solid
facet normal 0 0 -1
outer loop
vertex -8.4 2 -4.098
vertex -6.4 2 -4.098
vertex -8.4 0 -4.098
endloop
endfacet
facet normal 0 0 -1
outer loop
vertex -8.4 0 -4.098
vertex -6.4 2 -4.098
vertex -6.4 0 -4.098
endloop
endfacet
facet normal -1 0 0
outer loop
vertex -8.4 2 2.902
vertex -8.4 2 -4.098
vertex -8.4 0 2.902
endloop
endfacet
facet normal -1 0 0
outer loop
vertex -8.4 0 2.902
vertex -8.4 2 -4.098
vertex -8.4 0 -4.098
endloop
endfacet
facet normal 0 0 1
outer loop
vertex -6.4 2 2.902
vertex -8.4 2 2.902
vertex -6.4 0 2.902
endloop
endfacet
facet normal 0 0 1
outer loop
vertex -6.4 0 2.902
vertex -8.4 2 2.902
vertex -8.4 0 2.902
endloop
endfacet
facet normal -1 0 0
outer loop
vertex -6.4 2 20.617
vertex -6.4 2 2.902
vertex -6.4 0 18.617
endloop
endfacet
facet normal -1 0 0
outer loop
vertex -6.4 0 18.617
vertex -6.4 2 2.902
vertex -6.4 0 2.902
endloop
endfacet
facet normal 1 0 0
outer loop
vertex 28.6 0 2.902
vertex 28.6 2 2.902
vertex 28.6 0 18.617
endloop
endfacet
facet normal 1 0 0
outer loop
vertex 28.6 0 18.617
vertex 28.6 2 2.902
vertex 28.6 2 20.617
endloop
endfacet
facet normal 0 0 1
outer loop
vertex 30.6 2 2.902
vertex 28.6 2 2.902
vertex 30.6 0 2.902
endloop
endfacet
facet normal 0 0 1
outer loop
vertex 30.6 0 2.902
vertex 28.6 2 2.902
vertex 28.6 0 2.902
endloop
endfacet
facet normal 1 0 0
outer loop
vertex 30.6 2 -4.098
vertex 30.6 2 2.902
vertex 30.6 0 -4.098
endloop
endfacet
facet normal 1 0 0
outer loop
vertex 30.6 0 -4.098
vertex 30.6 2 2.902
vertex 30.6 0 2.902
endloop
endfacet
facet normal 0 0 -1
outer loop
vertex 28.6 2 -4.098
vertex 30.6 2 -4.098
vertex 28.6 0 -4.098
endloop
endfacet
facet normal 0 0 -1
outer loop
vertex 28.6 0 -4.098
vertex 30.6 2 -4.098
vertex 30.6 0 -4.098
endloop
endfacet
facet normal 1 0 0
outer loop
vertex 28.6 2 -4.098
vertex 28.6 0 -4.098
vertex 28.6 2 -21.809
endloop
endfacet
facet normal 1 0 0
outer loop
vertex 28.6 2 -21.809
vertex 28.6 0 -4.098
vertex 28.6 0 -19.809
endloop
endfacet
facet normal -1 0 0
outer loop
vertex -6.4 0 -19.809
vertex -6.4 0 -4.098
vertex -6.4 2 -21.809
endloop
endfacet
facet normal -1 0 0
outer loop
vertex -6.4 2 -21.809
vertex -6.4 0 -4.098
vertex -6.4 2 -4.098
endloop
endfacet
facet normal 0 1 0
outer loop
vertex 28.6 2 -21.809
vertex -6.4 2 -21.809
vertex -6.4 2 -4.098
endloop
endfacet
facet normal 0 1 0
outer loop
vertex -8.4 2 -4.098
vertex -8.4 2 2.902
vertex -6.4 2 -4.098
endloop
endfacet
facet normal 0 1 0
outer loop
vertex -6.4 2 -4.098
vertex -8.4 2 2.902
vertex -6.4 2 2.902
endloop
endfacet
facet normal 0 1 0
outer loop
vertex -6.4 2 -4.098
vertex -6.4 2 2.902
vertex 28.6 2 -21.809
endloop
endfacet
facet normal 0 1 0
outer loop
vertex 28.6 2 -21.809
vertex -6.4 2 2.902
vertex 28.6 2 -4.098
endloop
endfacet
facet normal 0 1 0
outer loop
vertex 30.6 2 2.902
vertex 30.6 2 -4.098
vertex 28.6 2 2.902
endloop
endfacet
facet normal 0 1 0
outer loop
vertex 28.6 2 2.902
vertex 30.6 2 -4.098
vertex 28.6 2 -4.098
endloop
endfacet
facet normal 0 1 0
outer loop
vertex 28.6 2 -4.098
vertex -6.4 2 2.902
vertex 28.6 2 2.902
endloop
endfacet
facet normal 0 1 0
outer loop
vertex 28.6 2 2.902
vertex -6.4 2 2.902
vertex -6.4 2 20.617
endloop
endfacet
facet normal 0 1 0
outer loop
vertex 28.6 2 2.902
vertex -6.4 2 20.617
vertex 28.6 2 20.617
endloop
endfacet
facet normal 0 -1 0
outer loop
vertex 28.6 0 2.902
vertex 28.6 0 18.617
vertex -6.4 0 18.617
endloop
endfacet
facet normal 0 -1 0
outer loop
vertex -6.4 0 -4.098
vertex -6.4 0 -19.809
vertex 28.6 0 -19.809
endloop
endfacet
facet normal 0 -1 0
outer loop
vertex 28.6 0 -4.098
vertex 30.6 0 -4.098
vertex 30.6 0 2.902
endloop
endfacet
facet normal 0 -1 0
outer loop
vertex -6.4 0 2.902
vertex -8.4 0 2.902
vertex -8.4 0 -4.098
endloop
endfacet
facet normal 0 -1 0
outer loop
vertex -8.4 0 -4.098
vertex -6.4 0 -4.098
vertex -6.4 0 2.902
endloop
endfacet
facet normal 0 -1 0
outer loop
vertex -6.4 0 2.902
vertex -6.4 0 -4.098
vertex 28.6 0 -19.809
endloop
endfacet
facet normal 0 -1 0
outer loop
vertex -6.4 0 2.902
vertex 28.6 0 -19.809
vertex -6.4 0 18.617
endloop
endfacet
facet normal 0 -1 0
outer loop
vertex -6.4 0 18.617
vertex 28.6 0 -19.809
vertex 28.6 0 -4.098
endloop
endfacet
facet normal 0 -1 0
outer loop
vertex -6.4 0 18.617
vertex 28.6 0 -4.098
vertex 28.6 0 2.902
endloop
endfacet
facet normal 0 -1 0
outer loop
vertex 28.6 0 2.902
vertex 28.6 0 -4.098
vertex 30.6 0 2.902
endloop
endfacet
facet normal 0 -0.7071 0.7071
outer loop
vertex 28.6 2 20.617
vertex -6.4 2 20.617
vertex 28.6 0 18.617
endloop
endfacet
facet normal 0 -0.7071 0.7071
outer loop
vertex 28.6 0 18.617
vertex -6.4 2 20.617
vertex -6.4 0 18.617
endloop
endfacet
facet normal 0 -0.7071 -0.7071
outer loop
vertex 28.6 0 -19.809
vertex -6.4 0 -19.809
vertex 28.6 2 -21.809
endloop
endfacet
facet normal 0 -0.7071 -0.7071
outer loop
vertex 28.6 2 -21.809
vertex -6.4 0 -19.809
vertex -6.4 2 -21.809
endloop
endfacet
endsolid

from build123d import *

# Parameters (mm, degrees)
SKETCH1_W           = 2
SKETCH1_H           = 7
SKETCH1_W_2         = 35
SKETCH1_H_2         = 42.42640687
BOSS_EXTRUDE1_DEPTH = 2
CUT_EXTRUDE1_DEPTH  = 43.995801746


with BuildPart() as part:
    # Sketch1 → Boss-Extrude1 (new body)
    with BuildSketch(Plane(origin=(0, 0, 0), x_dir=(1, 0, 0), z_dir=(0, 1, 0))):
        with Locations((-7.400304625, 0.597741848)):
            Rectangle(SKETCH1_W, SKETCH1_H)
        with Locations((11.099695375, 0.595945283)):
            Rectangle(SKETCH1_W_2, SKETCH1_H_2)
        with Locations((29.599695375, 0.597741848)):
            Rectangle(SKETCH1_W, SKETCH1_H)
    extrude(amount=BOSS_EXTRUDE1_DEPTH)

    # Sketch2 → Cut-Extrude1 (cut, through all)
    with BuildSketch(Plane(origin=(28.599695375, 0, 0), x_dir=(0, 0, -1), z_dir=(1, 0, 0))):
        Polygon((-20.617258152, 2), (-18.617258152, 0), (-20.617258152, 0), align=None)
        Polygon((21.809148718, 2), (21.809148718, 0), (19.809148718, 0), align=None)
    extrude(amount=-CUT_EXTRUDE1_DEPTH, mode=Mode.SUBTRACT)


solid = part.part
